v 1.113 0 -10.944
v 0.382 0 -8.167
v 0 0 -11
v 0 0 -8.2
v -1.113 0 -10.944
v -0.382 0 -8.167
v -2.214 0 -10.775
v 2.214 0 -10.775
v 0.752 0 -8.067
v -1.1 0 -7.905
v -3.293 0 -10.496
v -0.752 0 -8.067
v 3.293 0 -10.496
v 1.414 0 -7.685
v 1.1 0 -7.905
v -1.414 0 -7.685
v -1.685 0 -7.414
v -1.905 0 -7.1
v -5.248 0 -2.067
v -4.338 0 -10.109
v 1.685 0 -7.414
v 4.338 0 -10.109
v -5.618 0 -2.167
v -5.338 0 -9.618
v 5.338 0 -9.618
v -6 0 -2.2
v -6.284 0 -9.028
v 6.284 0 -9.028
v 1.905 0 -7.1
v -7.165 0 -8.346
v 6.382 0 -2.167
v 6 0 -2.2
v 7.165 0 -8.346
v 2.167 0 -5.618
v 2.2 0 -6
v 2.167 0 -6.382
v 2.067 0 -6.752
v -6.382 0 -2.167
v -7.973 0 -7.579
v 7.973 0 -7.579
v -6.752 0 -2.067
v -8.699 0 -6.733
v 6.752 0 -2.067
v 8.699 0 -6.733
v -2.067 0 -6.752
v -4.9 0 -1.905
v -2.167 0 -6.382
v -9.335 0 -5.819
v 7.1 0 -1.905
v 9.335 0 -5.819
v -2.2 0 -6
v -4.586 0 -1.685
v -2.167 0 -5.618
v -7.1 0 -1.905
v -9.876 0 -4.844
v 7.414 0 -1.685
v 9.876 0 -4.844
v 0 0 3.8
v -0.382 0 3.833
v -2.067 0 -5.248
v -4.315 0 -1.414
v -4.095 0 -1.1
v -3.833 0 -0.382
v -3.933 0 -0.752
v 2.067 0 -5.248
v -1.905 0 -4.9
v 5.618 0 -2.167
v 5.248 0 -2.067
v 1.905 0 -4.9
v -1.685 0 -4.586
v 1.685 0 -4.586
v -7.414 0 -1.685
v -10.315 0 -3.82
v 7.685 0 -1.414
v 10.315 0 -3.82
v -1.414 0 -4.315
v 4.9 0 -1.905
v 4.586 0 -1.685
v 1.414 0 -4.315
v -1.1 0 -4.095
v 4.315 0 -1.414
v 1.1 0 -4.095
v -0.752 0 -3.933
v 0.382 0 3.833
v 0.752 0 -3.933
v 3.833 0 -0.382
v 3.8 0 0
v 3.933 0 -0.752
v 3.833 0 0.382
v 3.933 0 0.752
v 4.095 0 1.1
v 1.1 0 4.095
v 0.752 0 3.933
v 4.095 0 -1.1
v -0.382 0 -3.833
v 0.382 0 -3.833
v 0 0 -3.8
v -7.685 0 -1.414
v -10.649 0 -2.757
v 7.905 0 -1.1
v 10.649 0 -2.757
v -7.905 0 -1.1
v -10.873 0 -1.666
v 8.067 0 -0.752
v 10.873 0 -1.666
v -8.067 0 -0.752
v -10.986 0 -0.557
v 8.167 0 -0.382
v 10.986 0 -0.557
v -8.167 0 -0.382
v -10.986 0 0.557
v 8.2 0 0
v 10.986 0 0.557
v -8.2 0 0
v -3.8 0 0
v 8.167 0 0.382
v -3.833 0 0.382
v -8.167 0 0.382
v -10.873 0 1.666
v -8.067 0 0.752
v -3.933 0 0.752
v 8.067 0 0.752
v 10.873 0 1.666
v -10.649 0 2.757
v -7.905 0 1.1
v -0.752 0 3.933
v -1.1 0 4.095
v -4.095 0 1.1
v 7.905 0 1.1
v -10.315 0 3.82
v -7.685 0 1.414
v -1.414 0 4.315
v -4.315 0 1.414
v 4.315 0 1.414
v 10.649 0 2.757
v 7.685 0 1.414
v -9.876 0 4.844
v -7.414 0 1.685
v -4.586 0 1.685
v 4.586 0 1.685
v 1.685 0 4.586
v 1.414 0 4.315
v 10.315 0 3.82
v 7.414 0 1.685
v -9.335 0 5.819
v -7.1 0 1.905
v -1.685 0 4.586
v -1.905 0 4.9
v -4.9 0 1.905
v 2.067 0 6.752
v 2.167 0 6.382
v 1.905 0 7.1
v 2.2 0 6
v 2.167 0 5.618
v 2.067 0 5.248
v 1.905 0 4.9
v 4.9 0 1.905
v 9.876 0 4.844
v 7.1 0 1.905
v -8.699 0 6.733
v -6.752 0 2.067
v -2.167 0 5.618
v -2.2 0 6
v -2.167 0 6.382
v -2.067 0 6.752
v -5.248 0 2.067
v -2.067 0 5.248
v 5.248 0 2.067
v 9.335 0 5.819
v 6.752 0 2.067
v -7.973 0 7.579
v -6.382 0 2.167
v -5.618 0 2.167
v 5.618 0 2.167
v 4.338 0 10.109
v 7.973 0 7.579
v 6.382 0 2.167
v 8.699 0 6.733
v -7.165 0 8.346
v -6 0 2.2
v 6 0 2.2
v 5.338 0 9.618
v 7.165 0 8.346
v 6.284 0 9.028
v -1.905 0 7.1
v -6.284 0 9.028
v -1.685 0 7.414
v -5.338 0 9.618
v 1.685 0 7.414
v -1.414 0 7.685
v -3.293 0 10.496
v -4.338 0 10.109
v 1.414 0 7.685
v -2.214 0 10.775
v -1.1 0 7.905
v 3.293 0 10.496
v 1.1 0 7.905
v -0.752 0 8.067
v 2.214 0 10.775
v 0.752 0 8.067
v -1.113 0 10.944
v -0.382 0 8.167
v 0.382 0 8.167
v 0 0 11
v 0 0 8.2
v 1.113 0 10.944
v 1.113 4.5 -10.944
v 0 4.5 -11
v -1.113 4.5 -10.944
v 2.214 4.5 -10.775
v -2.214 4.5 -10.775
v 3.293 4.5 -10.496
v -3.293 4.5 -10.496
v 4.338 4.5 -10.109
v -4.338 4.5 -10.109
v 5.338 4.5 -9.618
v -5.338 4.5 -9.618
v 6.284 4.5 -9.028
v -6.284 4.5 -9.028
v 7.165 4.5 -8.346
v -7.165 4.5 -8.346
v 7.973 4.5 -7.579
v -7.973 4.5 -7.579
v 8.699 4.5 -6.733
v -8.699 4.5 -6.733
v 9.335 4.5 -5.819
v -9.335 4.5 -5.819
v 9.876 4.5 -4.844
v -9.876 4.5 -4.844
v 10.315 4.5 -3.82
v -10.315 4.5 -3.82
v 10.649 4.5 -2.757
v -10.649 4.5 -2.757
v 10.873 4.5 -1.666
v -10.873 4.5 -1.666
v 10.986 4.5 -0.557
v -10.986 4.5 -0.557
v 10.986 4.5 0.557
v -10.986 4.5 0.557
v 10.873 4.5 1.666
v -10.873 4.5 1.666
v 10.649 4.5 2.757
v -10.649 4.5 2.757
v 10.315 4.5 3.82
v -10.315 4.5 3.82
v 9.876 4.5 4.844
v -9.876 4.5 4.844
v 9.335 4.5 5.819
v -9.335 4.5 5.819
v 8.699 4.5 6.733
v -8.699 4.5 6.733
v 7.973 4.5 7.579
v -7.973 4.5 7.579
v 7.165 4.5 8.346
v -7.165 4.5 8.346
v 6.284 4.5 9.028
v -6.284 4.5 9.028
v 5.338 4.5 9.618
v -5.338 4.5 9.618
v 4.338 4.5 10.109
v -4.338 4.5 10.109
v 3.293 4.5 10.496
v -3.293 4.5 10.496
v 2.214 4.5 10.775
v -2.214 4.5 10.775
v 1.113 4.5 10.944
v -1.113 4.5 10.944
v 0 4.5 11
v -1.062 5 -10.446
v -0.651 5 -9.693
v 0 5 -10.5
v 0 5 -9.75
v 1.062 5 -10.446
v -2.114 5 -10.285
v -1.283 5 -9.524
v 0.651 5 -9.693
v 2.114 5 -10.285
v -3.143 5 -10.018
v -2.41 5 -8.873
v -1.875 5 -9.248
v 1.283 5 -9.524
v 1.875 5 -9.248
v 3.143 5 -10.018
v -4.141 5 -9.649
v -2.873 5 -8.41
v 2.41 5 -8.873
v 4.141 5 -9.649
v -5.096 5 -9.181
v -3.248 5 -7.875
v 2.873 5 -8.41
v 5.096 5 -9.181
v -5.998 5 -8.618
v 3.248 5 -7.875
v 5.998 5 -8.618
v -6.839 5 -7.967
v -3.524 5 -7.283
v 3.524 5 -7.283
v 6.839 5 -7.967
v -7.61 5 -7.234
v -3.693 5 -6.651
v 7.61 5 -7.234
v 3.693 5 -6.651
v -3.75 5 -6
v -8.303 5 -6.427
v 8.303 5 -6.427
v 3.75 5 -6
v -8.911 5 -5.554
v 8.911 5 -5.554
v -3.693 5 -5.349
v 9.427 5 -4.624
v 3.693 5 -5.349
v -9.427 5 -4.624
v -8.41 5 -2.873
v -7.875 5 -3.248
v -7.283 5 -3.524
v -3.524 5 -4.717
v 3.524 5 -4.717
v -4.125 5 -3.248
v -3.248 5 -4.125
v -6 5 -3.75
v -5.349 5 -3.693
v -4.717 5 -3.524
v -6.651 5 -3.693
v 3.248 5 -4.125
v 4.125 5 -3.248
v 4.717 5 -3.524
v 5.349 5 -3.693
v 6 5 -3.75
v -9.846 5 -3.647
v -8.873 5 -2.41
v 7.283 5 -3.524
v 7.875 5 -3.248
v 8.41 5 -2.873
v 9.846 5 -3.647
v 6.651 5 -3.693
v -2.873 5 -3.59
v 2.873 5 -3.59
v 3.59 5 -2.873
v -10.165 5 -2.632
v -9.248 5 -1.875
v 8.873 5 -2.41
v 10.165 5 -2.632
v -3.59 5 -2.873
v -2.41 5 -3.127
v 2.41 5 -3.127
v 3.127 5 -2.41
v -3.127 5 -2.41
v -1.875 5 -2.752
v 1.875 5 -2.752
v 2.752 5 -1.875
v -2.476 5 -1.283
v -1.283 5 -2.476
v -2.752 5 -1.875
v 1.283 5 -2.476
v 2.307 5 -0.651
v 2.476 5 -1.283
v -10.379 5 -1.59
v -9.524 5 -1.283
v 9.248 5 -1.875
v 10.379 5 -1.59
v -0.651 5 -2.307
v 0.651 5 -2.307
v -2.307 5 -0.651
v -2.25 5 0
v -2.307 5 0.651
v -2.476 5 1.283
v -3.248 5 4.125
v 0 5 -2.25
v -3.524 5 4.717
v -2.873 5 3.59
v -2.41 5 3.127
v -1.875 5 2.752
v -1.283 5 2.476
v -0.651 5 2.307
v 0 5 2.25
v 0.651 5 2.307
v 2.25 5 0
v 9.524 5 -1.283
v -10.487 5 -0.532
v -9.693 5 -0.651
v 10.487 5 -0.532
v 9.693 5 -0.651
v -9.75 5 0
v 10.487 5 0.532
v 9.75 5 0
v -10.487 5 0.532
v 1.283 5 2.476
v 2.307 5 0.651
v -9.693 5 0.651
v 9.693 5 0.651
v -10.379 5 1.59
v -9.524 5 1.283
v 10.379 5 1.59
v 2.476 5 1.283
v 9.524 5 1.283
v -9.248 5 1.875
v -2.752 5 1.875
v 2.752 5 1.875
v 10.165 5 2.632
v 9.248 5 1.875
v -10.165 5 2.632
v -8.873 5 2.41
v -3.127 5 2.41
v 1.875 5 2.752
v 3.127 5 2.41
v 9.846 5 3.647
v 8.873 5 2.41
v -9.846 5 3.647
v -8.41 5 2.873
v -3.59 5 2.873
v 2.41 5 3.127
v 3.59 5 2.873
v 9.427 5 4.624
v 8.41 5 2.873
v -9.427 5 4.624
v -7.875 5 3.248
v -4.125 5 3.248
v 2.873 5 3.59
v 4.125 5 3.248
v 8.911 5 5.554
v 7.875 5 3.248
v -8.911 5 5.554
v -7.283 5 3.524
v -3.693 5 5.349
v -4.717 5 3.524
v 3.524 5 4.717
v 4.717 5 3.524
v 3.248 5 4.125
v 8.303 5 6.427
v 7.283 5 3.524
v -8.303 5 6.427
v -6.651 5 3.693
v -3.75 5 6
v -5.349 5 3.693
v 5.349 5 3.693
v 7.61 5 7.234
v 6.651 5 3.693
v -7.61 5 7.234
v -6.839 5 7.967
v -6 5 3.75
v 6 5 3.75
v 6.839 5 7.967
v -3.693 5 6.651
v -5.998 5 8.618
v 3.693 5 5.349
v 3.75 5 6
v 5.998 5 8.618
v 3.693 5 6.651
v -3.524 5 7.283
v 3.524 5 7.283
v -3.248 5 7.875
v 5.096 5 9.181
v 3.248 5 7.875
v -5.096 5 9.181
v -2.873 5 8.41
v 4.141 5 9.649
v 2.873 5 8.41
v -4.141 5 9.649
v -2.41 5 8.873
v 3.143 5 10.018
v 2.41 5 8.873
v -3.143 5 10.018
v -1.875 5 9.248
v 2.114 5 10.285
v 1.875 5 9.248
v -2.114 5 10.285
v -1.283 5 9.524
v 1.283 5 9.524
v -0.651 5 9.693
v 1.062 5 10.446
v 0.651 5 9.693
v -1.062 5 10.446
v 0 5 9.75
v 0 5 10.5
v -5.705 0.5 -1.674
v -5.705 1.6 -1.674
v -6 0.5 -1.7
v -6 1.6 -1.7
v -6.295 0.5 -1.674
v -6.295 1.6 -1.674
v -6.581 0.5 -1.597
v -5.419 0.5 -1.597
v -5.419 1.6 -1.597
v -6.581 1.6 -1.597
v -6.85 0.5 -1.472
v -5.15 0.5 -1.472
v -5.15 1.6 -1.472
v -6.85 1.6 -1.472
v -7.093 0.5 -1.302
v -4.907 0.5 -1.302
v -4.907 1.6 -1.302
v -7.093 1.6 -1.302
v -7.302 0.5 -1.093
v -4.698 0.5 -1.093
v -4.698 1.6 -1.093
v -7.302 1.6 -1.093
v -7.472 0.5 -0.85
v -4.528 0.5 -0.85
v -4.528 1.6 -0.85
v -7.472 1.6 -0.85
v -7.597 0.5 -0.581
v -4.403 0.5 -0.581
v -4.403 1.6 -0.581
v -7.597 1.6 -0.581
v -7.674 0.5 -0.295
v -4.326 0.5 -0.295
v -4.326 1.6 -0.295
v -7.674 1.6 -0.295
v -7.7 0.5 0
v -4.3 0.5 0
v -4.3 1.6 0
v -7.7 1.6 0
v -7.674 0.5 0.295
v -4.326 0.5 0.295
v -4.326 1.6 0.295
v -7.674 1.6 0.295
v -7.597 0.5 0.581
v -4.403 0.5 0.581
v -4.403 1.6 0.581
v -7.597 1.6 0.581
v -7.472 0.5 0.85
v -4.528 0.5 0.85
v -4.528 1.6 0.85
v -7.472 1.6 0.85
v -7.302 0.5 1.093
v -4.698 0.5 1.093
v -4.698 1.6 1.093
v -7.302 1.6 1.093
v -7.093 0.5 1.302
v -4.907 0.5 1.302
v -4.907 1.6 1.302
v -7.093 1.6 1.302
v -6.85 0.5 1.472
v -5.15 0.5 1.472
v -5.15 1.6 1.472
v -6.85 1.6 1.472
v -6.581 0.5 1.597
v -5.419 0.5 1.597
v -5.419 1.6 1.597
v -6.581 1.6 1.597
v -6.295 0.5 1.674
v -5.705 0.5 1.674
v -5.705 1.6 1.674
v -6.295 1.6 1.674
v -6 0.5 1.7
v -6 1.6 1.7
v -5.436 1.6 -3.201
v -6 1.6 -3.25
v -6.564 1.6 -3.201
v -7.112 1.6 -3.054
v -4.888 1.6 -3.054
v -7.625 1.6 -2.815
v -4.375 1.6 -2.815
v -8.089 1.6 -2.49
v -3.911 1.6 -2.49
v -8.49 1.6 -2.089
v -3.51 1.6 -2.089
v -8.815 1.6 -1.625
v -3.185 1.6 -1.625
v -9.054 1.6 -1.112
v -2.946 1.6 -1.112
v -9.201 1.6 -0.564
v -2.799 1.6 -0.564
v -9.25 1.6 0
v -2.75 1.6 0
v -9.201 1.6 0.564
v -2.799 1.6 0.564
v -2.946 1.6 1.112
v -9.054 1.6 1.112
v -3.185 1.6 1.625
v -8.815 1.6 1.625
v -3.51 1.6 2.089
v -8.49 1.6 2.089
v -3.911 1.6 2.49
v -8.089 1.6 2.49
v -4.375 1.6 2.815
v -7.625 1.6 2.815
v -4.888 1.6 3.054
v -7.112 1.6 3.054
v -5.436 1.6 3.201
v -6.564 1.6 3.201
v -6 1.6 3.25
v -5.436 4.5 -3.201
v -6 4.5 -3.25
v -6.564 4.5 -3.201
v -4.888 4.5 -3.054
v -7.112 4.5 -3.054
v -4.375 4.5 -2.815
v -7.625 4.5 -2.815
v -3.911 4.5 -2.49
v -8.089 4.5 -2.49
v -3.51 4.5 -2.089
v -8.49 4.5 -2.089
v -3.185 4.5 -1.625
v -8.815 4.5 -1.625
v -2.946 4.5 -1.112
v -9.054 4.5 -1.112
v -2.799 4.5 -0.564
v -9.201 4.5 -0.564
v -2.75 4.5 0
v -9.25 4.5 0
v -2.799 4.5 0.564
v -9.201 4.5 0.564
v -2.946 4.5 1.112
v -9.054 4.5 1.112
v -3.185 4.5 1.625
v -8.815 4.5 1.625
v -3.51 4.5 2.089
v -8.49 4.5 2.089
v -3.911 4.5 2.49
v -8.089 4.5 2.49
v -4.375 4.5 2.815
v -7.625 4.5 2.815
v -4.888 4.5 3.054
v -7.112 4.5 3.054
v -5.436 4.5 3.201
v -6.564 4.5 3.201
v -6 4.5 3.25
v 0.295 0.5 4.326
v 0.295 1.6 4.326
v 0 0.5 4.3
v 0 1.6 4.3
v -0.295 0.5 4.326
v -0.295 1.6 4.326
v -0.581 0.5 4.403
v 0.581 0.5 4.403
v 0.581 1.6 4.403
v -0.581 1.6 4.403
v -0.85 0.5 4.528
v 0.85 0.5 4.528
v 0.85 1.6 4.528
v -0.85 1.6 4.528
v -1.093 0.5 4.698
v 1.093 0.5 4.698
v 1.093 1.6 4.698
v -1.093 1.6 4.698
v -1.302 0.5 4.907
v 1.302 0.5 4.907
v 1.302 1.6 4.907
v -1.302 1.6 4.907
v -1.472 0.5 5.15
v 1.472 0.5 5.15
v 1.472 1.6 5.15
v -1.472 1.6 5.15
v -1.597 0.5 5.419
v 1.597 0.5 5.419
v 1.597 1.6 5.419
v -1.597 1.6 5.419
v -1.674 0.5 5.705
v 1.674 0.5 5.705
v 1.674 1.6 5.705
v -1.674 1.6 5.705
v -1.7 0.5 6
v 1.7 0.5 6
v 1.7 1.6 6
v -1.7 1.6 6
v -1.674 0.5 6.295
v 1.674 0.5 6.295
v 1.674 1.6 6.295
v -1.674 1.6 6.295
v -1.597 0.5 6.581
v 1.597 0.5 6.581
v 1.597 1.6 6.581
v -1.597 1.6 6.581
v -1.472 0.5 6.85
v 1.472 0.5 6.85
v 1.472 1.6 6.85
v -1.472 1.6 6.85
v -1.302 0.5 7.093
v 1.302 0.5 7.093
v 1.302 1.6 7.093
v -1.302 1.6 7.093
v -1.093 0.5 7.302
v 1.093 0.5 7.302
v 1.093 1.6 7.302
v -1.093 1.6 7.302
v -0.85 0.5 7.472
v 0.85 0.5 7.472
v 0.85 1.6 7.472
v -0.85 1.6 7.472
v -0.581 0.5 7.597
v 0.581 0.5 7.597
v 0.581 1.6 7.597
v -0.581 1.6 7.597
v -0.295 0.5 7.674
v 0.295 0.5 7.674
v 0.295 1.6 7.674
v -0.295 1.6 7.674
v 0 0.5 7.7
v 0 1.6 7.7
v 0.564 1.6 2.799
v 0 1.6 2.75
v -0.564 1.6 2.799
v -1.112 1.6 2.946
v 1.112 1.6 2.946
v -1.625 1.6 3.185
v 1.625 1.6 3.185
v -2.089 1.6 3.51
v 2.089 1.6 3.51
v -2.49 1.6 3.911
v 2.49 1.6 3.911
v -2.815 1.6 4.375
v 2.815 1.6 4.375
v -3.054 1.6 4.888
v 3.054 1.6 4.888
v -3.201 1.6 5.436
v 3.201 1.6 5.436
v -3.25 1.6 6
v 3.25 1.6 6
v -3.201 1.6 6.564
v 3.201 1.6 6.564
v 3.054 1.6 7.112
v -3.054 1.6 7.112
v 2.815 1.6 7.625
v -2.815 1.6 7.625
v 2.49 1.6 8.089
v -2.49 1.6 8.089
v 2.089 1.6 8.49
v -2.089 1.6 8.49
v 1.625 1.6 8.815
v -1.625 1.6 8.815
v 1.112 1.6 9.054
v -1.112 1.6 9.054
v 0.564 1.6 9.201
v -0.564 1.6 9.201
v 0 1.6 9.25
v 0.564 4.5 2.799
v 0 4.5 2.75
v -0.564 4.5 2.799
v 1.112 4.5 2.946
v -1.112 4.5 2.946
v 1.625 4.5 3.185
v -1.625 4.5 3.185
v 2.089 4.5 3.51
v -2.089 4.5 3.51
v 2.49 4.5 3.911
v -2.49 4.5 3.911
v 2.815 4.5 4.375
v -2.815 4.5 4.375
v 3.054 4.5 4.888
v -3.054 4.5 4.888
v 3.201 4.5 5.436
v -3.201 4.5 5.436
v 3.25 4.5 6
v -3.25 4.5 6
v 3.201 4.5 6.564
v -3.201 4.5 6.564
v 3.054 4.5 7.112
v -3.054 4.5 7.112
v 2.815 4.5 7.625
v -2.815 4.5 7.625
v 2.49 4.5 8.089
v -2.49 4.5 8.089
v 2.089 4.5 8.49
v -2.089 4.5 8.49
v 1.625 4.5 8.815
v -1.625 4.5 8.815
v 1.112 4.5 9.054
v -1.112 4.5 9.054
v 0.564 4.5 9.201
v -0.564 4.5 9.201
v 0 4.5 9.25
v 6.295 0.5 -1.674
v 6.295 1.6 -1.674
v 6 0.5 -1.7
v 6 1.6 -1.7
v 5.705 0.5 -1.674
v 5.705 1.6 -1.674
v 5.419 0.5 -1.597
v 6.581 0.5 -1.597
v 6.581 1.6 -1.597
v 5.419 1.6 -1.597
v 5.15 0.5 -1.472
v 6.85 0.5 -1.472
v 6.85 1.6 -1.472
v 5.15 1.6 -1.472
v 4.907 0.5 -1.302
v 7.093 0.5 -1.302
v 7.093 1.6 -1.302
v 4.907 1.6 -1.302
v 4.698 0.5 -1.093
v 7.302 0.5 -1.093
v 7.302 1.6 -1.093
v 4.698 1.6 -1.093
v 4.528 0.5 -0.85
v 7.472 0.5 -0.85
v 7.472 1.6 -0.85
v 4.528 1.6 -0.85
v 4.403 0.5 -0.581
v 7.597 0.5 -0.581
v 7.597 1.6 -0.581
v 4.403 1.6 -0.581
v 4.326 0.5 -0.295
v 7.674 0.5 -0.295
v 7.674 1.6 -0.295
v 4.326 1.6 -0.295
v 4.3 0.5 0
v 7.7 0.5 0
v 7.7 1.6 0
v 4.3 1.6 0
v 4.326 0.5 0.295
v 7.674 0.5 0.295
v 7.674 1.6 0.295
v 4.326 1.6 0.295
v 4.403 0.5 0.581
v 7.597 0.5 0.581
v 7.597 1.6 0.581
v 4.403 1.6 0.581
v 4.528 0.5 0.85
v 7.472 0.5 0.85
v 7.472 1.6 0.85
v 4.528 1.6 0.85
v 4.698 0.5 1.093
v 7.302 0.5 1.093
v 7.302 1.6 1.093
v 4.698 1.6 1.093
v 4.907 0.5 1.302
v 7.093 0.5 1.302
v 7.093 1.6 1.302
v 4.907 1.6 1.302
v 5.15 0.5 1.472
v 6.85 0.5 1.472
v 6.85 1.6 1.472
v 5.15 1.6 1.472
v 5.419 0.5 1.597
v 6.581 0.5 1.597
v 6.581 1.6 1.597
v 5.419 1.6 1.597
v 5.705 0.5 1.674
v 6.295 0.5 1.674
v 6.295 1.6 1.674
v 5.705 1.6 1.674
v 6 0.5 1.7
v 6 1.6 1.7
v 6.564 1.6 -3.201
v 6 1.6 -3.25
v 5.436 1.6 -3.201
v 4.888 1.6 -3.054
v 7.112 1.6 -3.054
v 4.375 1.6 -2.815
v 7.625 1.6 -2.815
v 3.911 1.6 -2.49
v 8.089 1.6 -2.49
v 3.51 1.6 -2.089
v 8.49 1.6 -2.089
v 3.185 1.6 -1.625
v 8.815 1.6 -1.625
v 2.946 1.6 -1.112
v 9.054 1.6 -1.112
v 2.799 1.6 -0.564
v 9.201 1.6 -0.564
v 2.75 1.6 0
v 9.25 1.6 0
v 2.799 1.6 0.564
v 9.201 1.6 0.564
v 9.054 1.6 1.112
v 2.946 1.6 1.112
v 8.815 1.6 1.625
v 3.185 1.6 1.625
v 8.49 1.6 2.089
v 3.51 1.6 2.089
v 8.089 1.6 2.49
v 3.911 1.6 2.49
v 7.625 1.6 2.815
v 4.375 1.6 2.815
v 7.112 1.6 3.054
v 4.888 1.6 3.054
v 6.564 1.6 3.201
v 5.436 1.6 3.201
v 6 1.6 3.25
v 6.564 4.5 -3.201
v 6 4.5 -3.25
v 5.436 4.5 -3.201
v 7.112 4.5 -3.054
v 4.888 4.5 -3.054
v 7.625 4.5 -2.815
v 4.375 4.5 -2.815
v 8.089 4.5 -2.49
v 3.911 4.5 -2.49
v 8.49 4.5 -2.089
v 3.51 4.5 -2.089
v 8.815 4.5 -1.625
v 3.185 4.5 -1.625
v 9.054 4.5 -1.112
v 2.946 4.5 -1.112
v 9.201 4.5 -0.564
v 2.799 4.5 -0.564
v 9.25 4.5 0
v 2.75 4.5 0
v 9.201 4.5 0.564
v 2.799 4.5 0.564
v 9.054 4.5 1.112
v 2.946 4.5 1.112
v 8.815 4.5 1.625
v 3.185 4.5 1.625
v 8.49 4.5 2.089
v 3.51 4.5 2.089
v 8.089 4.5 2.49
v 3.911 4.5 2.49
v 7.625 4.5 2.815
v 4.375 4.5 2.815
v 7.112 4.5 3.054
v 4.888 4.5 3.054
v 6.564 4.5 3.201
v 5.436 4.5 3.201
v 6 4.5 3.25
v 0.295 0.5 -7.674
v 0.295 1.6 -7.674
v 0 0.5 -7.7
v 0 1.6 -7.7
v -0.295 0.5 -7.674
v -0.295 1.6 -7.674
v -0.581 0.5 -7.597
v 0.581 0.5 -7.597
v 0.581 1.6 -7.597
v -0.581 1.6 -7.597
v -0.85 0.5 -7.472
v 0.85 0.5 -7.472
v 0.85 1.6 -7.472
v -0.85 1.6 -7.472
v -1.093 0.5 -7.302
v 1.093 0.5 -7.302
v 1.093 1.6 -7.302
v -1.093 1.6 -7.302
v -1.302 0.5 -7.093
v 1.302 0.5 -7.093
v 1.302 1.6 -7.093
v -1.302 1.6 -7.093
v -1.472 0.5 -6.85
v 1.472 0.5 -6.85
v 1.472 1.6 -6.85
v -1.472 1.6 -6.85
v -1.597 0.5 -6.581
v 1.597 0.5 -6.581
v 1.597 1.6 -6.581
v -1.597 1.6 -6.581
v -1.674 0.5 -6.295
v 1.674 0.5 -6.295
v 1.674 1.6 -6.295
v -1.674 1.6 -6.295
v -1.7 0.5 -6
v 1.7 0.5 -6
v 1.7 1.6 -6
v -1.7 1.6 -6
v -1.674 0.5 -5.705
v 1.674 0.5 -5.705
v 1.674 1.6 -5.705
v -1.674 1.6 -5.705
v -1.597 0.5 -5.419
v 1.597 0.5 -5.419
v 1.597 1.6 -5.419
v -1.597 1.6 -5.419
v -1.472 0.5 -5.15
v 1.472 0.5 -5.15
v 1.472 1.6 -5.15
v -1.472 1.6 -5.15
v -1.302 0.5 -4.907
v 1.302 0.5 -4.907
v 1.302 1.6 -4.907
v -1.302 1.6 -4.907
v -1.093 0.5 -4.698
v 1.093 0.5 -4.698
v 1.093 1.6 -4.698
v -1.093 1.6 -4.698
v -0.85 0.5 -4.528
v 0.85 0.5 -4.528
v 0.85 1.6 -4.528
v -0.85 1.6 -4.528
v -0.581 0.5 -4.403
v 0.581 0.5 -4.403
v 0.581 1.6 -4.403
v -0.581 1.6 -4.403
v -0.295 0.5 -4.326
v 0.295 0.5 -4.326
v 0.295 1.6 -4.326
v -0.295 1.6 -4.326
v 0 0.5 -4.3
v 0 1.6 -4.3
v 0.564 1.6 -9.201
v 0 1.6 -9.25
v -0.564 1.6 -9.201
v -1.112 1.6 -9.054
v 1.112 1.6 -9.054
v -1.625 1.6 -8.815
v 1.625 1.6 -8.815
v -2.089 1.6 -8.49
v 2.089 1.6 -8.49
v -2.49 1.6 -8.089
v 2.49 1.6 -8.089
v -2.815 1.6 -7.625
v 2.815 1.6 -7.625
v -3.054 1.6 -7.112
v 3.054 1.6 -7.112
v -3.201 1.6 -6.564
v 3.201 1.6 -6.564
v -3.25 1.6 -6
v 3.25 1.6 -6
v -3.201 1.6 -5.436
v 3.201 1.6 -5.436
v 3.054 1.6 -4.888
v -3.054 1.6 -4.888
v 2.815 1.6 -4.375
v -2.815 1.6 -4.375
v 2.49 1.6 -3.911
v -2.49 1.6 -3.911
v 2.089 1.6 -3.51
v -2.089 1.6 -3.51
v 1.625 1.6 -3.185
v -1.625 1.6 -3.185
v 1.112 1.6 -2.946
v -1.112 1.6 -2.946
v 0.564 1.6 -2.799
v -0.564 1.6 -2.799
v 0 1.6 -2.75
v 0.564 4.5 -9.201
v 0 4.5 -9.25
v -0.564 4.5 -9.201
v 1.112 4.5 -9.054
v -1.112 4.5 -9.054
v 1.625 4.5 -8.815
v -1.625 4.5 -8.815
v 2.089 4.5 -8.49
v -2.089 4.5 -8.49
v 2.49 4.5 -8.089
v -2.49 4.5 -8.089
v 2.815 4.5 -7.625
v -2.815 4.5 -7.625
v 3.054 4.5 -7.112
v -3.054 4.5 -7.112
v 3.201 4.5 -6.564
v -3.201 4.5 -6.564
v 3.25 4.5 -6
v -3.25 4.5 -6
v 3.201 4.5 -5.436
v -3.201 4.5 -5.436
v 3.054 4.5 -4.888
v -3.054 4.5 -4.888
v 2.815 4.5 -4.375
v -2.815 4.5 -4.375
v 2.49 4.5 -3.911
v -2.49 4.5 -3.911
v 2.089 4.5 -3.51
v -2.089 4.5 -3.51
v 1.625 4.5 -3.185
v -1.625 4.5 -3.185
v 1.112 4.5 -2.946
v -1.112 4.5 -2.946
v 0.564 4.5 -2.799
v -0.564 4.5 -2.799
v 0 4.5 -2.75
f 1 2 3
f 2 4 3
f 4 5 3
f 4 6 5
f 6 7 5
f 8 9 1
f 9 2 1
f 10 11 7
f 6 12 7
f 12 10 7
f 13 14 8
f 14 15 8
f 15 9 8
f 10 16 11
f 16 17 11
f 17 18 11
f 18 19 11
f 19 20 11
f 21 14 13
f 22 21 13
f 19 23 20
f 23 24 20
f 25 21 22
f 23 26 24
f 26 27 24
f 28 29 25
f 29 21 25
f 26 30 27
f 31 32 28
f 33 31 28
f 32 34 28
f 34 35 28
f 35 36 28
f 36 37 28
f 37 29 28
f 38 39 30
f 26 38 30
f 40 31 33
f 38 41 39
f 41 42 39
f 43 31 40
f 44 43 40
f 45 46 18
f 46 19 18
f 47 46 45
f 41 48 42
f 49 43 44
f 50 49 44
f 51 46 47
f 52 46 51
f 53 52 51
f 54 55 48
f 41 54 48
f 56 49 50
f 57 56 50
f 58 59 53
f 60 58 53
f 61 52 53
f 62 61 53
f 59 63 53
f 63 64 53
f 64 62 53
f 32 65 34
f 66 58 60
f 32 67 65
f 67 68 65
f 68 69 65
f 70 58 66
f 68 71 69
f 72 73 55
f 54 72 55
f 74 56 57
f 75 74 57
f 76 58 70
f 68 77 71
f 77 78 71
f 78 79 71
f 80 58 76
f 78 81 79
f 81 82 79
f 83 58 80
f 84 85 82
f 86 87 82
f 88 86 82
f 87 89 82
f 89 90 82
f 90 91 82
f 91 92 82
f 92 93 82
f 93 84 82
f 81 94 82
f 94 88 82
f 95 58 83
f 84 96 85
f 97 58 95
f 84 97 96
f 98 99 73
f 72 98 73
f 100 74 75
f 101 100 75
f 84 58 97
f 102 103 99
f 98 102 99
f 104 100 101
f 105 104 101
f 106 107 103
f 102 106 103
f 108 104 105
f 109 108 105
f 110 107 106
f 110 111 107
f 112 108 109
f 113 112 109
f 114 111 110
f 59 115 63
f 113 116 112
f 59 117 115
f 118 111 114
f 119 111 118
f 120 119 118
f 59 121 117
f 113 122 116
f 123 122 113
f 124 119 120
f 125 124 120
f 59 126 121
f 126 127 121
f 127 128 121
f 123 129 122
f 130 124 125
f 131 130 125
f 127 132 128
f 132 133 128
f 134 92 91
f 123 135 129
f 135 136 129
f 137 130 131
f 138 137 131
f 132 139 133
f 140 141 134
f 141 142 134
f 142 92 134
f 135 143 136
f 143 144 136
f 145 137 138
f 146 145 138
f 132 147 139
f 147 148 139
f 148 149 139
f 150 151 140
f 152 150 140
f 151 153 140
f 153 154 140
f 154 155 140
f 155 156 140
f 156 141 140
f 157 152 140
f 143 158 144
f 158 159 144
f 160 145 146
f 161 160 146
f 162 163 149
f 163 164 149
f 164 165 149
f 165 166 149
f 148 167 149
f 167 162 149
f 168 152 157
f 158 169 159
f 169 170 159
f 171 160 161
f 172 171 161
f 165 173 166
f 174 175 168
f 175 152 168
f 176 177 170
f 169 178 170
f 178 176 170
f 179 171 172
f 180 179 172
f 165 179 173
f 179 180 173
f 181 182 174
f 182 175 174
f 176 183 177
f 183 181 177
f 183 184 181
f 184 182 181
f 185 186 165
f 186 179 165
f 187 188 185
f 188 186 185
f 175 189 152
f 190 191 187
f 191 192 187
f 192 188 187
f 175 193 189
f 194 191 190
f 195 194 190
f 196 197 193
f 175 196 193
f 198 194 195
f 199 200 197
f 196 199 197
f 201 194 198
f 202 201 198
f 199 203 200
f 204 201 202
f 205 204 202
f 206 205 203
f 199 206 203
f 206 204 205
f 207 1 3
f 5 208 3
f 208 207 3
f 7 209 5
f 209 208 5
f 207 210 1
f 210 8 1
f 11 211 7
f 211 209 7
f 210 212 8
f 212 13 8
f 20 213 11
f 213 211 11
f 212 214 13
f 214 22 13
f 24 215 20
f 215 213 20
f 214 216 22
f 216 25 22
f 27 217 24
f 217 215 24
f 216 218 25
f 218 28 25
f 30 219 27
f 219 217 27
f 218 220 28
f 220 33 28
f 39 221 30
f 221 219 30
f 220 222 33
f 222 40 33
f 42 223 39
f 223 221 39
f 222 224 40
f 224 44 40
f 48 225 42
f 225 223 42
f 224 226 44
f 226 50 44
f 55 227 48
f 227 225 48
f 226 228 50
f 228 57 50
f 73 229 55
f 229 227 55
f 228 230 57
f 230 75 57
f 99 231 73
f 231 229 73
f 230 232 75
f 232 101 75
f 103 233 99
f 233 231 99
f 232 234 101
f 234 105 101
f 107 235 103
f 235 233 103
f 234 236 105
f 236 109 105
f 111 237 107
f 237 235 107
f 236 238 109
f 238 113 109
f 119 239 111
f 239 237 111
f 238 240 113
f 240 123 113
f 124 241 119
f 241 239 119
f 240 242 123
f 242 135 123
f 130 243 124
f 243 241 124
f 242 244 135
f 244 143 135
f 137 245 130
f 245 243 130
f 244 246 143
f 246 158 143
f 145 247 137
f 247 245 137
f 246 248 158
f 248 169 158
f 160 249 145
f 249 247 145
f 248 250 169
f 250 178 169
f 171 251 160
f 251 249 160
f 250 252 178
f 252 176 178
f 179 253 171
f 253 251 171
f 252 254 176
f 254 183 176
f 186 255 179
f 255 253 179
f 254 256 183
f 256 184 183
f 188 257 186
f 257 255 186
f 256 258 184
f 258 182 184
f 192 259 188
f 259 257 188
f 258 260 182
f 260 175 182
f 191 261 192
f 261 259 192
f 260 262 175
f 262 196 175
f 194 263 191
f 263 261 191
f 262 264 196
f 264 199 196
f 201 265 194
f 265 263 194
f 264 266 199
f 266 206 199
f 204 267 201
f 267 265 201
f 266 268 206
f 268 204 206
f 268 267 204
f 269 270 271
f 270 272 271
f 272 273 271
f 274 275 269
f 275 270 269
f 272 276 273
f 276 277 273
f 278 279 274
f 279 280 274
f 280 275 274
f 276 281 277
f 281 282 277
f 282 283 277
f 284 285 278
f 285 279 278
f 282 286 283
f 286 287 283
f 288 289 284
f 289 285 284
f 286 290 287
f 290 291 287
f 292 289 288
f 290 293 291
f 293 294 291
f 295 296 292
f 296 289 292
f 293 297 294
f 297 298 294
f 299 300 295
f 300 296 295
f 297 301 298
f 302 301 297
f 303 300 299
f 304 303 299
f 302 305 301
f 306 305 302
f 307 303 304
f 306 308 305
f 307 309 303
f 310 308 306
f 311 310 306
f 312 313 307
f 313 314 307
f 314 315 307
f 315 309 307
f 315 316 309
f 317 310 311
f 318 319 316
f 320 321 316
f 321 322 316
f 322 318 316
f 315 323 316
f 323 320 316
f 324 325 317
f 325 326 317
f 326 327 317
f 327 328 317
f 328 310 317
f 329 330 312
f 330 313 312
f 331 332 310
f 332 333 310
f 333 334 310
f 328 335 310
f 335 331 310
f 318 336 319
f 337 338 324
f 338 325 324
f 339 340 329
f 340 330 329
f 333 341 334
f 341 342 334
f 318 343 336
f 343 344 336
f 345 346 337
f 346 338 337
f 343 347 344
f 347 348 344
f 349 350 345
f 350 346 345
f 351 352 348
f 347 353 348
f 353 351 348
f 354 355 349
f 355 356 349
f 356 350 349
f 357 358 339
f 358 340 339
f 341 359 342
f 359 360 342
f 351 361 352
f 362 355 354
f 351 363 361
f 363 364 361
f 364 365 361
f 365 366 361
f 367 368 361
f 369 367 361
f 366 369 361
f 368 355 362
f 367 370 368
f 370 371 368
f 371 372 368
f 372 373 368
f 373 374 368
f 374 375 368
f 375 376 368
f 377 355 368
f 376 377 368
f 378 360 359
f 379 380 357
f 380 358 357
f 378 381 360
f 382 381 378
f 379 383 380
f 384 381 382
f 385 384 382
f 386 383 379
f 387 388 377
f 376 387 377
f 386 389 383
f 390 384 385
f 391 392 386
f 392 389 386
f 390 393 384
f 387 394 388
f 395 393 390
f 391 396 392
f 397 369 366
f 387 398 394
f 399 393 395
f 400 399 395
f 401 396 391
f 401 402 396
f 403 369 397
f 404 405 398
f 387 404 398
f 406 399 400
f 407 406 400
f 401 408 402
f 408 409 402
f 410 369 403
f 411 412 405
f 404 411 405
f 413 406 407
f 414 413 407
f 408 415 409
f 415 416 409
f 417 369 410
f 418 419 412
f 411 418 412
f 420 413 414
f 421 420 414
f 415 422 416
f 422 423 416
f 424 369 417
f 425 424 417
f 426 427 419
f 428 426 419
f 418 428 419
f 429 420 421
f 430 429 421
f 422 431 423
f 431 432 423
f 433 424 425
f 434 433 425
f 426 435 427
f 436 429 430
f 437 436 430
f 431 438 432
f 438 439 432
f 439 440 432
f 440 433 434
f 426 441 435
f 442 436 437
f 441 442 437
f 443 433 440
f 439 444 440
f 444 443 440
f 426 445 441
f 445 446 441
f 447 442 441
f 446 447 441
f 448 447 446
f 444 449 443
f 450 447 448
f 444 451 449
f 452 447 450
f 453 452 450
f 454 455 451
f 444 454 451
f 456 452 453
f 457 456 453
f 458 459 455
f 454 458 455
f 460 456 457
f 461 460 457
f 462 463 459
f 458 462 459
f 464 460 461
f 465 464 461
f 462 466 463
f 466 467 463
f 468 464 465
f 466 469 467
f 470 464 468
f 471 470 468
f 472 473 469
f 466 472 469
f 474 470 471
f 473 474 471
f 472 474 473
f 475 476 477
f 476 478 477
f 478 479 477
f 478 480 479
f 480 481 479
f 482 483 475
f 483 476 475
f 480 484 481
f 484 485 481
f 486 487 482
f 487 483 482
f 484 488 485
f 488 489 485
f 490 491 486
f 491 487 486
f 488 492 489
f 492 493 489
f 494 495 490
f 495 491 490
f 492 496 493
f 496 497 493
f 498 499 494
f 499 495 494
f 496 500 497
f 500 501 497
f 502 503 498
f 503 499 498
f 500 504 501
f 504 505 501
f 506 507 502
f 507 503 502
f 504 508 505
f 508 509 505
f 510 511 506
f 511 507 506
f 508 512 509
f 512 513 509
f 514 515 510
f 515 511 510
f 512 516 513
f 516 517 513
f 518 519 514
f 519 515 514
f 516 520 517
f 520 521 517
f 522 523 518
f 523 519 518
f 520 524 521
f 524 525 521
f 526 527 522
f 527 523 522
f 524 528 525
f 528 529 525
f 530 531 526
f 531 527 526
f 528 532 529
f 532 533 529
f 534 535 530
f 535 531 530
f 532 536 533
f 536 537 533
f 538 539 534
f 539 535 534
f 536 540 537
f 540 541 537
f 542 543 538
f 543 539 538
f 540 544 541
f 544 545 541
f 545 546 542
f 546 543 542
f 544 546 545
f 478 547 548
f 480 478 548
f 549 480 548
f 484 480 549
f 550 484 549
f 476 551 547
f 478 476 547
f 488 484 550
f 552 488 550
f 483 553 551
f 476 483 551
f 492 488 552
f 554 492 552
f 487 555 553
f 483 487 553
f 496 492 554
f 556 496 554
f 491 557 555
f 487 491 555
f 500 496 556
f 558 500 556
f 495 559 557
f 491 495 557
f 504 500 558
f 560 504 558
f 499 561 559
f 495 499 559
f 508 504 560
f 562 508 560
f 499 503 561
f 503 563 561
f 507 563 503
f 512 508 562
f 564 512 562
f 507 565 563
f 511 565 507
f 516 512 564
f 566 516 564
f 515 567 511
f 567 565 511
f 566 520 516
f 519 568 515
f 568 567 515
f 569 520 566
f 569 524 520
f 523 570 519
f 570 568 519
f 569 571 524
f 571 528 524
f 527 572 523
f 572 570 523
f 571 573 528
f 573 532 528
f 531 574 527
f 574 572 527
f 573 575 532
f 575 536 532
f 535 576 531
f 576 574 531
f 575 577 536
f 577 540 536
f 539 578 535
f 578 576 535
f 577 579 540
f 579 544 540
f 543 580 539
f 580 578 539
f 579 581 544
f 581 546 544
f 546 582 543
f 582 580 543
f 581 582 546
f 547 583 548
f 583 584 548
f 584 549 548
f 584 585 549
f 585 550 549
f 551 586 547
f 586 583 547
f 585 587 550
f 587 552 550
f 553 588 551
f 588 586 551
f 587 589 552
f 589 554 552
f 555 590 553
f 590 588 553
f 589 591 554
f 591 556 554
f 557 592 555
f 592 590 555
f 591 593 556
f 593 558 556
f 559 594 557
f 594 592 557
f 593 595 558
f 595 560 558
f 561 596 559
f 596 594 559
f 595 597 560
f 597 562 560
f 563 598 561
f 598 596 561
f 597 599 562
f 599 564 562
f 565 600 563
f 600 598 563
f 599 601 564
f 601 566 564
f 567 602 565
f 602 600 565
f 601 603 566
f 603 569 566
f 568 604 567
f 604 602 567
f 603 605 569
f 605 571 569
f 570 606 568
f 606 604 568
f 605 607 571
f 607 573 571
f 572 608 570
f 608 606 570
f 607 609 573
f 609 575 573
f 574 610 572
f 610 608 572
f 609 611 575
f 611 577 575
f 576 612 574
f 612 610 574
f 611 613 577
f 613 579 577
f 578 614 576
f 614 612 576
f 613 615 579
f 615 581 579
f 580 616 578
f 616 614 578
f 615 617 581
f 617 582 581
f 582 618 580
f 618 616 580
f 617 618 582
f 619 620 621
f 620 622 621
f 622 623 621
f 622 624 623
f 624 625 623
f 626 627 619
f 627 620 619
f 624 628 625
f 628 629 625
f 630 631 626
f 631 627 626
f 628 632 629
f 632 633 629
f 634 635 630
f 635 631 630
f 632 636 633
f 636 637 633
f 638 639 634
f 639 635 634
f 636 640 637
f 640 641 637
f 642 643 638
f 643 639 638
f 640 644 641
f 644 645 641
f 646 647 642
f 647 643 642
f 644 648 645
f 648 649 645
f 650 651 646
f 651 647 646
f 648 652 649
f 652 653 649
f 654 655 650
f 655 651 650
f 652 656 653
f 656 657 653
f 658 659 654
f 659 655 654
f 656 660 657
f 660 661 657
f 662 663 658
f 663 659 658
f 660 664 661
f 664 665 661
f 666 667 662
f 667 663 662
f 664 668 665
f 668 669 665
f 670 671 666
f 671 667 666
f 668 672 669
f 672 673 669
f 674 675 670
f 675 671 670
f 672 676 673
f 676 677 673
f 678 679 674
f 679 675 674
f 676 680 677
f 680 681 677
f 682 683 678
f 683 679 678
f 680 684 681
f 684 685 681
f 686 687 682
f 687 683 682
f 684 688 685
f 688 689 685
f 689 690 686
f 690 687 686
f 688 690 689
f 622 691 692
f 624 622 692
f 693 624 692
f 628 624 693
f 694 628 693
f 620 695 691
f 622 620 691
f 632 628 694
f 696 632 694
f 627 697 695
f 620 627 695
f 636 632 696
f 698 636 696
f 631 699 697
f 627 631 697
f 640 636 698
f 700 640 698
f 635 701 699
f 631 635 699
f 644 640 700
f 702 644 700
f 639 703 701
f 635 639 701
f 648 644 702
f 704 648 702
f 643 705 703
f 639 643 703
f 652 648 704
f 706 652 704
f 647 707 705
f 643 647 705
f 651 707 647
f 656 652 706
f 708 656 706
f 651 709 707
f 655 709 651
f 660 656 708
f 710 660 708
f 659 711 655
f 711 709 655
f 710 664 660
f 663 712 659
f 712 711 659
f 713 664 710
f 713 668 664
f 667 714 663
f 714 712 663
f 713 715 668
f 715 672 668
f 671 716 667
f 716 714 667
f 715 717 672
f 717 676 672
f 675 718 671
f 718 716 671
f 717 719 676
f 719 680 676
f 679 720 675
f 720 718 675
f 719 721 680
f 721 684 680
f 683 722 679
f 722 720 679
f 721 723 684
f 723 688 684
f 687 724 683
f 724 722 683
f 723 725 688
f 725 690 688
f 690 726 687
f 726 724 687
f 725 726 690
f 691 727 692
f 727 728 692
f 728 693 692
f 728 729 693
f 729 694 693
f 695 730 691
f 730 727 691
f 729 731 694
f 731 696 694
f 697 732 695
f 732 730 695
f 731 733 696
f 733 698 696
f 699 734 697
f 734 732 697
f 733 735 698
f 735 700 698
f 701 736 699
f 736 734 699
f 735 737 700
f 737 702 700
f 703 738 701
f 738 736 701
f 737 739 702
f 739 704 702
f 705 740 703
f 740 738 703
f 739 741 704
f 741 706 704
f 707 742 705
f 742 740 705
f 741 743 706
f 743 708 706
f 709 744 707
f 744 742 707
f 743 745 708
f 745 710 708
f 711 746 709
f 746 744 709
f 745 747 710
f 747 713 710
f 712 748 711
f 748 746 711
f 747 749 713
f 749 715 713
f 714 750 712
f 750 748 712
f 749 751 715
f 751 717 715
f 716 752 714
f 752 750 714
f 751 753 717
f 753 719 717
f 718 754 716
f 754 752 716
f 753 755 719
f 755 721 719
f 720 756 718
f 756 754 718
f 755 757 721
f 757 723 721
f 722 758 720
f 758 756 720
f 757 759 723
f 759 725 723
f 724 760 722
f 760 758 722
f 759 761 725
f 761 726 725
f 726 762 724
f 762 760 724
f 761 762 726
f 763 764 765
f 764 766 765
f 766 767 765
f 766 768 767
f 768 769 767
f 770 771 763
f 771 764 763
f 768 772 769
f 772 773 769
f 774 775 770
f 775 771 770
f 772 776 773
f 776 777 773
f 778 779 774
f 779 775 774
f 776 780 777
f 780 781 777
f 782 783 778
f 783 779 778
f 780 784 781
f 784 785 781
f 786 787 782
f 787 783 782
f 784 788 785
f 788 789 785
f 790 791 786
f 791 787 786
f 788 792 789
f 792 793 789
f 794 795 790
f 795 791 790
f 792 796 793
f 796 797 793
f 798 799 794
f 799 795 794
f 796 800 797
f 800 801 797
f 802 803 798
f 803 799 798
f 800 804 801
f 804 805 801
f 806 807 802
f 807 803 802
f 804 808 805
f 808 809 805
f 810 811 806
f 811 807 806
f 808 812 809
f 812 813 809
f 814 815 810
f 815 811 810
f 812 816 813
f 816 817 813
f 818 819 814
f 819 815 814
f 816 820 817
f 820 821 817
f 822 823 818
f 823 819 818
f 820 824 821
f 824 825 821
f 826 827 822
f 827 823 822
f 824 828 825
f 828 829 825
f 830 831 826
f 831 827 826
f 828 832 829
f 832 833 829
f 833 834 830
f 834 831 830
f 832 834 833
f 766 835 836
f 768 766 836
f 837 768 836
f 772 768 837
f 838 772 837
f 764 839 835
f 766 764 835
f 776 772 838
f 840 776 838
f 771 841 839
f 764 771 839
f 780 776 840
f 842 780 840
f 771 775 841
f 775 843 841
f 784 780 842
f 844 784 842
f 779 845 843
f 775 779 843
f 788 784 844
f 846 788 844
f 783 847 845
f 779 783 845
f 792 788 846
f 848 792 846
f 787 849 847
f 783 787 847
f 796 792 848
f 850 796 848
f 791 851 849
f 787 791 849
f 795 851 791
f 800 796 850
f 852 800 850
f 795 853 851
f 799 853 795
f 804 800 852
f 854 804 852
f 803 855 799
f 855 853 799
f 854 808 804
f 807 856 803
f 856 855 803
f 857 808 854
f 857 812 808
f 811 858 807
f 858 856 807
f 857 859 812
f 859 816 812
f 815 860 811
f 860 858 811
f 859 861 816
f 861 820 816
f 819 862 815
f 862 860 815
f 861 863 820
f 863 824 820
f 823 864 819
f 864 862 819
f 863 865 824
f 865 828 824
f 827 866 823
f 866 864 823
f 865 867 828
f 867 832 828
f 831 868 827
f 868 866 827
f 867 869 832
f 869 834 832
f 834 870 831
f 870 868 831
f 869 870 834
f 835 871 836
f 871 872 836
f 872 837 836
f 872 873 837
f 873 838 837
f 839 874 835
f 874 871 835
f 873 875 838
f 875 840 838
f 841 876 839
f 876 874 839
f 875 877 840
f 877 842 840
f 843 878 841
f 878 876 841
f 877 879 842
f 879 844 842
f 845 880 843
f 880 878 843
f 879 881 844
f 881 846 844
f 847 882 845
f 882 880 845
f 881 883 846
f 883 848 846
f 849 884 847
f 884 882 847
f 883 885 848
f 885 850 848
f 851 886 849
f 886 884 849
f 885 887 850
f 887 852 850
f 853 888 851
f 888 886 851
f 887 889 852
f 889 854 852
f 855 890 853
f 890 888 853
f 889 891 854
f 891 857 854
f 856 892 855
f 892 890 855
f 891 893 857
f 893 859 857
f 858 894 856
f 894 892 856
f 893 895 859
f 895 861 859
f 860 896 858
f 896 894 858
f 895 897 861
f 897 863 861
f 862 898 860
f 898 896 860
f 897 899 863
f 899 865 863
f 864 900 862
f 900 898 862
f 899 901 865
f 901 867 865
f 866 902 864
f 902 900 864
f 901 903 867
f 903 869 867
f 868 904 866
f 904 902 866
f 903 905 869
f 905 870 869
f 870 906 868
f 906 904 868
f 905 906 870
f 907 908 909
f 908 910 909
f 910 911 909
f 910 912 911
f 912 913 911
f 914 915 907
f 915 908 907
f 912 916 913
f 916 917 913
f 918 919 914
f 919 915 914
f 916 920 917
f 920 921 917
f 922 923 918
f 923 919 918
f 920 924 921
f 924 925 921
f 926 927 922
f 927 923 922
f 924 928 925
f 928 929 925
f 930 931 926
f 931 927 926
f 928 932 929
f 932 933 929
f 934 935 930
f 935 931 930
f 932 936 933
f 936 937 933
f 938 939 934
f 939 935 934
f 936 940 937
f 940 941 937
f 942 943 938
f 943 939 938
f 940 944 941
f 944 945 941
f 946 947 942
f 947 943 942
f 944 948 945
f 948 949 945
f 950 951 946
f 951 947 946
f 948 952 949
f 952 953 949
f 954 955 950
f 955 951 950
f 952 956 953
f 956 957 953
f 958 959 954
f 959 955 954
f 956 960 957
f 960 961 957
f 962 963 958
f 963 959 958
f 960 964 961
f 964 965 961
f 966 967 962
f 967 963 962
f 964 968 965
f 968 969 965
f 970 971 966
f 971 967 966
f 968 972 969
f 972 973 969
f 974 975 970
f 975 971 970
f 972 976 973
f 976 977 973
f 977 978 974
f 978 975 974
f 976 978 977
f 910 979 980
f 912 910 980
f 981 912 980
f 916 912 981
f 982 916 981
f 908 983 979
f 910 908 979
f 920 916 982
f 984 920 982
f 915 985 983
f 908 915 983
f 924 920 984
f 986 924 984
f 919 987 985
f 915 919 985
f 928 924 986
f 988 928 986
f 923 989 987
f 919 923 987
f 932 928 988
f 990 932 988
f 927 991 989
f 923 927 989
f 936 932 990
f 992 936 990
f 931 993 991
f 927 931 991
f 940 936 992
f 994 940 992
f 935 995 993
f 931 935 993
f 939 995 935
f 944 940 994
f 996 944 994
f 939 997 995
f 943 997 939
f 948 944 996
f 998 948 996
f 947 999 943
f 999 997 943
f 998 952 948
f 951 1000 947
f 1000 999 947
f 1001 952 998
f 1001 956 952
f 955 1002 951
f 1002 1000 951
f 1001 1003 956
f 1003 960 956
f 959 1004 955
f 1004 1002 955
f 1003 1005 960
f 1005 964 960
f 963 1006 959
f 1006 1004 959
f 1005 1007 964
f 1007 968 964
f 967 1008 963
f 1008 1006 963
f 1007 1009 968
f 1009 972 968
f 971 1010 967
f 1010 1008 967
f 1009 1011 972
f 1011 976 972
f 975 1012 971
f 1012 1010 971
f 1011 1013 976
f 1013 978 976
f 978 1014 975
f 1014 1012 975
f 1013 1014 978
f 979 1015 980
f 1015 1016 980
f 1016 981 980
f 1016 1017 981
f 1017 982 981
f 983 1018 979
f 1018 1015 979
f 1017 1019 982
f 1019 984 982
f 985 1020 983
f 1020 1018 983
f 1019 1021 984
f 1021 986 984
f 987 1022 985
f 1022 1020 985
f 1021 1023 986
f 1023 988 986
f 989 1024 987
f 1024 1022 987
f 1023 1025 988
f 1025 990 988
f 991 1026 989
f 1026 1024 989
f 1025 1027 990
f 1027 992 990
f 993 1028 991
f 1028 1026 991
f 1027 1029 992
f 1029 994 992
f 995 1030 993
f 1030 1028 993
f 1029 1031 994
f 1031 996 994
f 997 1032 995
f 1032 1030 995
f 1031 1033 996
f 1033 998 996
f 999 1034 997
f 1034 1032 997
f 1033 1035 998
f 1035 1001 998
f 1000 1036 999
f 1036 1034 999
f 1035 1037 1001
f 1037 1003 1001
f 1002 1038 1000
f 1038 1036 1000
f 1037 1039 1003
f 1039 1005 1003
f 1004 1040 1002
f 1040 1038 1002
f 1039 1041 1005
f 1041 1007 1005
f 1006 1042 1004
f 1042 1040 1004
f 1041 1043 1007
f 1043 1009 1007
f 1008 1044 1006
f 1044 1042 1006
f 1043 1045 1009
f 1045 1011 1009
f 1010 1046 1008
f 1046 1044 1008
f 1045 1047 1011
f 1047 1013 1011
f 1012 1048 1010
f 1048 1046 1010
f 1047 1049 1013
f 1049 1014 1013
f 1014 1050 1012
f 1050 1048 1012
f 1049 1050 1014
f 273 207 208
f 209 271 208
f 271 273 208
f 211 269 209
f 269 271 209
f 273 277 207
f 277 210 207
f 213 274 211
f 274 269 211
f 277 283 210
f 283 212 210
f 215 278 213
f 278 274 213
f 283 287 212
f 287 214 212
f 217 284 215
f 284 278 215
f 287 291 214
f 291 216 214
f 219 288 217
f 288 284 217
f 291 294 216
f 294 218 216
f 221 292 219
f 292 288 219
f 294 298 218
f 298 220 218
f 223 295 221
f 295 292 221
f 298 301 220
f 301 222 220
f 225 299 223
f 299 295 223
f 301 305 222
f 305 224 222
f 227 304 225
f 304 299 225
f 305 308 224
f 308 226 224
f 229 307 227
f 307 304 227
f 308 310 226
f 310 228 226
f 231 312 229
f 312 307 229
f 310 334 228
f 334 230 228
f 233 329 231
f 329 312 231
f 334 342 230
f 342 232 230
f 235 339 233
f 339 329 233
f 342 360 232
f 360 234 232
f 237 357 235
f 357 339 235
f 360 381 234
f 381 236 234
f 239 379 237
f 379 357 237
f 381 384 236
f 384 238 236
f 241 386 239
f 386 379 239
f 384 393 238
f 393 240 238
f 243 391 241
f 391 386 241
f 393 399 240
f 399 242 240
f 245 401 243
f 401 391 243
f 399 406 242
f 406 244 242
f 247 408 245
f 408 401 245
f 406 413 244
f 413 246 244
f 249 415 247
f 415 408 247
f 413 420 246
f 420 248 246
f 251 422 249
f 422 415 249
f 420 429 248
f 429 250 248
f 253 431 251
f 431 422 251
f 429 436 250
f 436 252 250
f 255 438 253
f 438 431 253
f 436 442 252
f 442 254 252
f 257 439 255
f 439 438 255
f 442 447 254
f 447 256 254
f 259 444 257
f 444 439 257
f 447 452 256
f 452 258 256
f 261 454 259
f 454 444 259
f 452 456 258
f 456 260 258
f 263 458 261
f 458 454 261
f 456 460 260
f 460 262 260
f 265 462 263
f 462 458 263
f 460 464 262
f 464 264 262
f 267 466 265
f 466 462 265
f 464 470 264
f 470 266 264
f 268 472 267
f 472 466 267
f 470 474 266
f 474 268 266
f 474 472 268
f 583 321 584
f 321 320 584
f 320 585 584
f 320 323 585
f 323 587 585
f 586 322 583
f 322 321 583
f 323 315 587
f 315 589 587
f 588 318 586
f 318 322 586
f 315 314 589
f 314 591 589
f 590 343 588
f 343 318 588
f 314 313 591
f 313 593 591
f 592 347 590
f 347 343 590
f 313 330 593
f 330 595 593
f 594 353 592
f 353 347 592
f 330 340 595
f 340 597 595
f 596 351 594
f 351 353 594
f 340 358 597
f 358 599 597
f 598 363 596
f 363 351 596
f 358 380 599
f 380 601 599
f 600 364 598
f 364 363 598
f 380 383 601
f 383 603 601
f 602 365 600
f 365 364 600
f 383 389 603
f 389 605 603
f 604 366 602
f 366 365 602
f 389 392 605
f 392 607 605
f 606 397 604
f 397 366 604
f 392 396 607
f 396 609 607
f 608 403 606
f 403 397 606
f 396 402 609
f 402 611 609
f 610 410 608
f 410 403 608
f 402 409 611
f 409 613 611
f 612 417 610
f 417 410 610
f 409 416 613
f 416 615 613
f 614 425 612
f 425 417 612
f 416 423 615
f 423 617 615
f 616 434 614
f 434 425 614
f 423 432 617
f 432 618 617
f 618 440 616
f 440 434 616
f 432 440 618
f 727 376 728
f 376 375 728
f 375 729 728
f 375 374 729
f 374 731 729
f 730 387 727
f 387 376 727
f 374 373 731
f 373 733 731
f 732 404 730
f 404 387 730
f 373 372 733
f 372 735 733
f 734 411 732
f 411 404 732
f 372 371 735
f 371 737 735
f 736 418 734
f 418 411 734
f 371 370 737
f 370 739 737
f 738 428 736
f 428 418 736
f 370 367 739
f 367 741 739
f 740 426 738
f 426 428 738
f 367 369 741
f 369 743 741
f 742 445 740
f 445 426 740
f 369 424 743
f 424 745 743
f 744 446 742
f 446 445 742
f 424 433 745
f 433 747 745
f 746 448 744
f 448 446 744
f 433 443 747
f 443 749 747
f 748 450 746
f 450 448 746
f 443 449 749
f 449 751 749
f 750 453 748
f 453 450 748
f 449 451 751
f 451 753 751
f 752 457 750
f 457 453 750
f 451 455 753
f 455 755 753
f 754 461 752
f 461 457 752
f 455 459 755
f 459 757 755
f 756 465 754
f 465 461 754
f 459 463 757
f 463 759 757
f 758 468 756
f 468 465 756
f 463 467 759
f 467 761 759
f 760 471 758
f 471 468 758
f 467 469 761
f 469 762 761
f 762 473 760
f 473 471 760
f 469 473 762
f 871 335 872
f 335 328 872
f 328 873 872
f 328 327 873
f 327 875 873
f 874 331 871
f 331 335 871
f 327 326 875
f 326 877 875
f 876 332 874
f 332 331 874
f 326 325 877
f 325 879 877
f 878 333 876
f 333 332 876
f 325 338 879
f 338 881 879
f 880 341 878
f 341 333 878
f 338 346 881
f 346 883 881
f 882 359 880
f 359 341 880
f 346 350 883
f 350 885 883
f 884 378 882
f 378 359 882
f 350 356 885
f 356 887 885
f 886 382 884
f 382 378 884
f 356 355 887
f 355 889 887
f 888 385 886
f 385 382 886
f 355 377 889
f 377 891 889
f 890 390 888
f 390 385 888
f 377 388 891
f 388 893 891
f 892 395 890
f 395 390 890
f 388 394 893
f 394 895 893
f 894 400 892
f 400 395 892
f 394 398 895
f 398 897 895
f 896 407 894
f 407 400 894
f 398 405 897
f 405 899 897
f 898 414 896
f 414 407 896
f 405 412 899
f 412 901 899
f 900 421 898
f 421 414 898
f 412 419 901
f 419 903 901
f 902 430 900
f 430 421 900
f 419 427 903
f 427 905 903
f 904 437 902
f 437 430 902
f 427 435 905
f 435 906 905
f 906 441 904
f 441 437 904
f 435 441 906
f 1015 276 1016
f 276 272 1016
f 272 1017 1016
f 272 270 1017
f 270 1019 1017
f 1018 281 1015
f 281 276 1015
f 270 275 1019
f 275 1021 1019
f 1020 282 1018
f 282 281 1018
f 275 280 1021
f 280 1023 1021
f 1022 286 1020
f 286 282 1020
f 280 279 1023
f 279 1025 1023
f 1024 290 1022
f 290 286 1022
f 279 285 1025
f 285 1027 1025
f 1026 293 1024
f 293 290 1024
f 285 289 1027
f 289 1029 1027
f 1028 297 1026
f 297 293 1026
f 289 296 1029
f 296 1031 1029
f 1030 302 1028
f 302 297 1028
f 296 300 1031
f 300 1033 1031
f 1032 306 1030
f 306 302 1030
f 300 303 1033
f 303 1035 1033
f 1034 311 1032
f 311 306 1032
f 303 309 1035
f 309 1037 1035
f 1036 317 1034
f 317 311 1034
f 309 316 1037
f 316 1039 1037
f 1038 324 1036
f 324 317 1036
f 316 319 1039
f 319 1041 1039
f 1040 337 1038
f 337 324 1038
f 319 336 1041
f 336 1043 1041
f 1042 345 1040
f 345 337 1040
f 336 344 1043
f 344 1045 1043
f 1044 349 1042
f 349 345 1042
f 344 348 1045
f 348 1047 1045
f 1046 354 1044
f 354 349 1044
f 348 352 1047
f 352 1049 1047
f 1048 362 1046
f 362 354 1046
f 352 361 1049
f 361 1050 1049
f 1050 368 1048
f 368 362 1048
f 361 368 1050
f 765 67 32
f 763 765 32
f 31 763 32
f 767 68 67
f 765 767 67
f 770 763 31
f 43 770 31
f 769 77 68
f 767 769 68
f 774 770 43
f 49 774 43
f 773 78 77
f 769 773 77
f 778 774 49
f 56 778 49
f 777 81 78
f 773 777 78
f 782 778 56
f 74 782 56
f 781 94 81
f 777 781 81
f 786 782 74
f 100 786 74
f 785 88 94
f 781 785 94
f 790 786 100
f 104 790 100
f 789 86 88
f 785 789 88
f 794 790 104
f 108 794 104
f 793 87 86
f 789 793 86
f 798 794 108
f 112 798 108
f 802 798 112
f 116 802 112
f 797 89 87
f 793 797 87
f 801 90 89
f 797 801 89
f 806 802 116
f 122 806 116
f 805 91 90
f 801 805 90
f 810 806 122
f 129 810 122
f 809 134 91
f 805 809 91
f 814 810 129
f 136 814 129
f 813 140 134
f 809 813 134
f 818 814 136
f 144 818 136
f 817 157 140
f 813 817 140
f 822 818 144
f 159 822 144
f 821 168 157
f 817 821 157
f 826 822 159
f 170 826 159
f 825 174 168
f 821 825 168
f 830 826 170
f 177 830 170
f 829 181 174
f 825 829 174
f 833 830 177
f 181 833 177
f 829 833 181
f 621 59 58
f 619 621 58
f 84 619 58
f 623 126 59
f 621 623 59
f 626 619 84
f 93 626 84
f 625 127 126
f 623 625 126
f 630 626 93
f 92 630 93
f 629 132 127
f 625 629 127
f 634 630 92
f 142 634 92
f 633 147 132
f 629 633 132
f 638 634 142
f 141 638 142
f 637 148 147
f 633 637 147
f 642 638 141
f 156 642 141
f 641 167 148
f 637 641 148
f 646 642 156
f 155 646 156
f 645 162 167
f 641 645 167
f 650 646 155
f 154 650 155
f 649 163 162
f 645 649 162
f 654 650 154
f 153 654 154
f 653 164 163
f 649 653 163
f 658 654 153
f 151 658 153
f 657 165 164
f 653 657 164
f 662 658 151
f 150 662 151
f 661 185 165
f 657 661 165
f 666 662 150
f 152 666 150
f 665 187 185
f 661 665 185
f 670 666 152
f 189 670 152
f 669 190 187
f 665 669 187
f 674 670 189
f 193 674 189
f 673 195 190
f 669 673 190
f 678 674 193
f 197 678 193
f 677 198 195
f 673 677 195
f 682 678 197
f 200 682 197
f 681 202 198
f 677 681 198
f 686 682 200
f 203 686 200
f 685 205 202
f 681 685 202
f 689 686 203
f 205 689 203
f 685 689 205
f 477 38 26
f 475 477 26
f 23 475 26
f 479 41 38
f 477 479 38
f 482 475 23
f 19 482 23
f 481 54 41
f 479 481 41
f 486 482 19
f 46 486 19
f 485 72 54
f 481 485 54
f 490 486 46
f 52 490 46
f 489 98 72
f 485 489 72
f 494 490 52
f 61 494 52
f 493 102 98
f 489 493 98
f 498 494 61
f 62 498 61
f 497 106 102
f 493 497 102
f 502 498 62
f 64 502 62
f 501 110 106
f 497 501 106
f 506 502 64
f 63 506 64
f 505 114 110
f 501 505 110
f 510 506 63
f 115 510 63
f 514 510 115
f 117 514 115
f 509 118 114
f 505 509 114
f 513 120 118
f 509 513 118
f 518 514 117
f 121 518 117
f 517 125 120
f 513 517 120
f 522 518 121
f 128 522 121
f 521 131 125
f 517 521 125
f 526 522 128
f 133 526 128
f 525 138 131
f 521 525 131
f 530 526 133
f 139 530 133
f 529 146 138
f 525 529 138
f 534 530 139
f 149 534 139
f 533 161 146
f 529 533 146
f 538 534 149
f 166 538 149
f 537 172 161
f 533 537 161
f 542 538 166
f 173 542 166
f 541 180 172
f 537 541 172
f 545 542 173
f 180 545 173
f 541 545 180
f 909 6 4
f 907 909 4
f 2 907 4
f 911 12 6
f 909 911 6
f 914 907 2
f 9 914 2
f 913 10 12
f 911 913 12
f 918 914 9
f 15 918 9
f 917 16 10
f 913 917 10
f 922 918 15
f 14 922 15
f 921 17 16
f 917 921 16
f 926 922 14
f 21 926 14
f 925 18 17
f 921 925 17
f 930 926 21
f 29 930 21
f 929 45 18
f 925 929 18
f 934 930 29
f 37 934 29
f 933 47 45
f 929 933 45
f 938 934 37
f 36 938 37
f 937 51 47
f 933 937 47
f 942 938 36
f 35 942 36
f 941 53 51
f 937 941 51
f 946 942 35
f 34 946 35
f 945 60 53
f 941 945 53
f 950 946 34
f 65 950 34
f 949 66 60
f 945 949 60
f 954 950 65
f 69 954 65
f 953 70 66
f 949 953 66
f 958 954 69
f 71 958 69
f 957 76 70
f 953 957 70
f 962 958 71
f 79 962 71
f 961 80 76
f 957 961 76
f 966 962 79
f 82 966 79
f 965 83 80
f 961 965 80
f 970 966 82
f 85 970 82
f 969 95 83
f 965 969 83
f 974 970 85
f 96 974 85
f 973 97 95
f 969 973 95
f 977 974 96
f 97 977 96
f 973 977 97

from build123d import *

# Parameters (mm, degrees)
SKETCH1_W                                           = 11
SKETCH1_H                                           = 5
CBORE_FOR_M3_HEX_SOCKET_HEAD_CAP_SCREW1_D           = 3.4
CBORE_FOR_M3_HEX_SOCKET_HEAD_CAP_SCREW1_DEPTH       = 11
CBORE_FOR_M3_HEX_SOCKET_HEAD_CAP_SCREW1_CBORE_D     = 6.5
CBORE_FOR_M3_HEX_SOCKET_HEAD_CAP_SCREW1_CBORE_DEPTH = 3.4
CBORE_FOR_M3_HEX_SOCKET_HEAD_CAP_SCREW1_TIP         = 1.021463052
CHAMFER1_SIZE                                       = 0.5


with BuildPart() as part:
    # Sketch1 → Revolve1 (revolve)
    with BuildSketch(Plane.XY, mode=Mode.PRIVATE) as revolve1_sk:
        with Locations((5.5, 2.5)):
            Rectangle(SKETCH1_W, SKETCH1_H)
    revolve(revolve1_sk.sketch.rotate(Axis((0, 0, 0), (0, 1, 0)), 90), axis=Axis((0, 0, 0), (0, 1, 0)))

    # CBORE for M3 Hex Socket Head Cap Screw1
    with Locations(Plane(origin=(0, 5, 0), x_dir=(1, 0, 0), z_dir=(0, 1, 0))):
        with Locations((-6, 0), (0, 6), (6, 0), (0, -6)):
            CounterBoreHole(CBORE_FOR_M3_HEX_SOCKET_HEAD_CAP_SCREW1_D / 2, CBORE_FOR_M3_HEX_SOCKET_HEAD_CAP_SCREW1_CBORE_D / 2, CBORE_FOR_M3_HEX_SOCKET_HEAD_CAP_SCREW1_CBORE_DEPTH, depth=CBORE_FOR_M3_HEX_SOCKET_HEAD_CAP_SCREW1_DEPTH)
            with Locations((0, 0, -(CBORE_FOR_M3_HEX_SOCKET_HEAD_CAP_SCREW1_DEPTH + CBORE_FOR_M3_HEX_SOCKET_HEAD_CAP_SCREW1_TIP / 2))):  # 118° drill point
                Cone(0, CBORE_FOR_M3_HEX_SOCKET_HEAD_CAP_SCREW1_D / 2, CBORE_FOR_M3_HEX_SOCKET_HEAD_CAP_SCREW1_TIP, mode=Mode.SUBTRACT)

    # Chamfer1
    chamfer1_edges = [part.edges().sort_by_distance(p)[0] for p in [
        (-4.3, 0, 0),
        (-9.25, 5, 0),
        (1.7, 0, 6),
        (-3.25, 5, 6),
        (7.7, 0, 0),
        (2.75, 5, 0),
        (1.7, 0, -6),
        (-3.25, 5, -6),
        (0, 5, 11),
    ]]
    chamfer(chamfer1_edges, length=CHAMFER1_SIZE)


solid = part.part
